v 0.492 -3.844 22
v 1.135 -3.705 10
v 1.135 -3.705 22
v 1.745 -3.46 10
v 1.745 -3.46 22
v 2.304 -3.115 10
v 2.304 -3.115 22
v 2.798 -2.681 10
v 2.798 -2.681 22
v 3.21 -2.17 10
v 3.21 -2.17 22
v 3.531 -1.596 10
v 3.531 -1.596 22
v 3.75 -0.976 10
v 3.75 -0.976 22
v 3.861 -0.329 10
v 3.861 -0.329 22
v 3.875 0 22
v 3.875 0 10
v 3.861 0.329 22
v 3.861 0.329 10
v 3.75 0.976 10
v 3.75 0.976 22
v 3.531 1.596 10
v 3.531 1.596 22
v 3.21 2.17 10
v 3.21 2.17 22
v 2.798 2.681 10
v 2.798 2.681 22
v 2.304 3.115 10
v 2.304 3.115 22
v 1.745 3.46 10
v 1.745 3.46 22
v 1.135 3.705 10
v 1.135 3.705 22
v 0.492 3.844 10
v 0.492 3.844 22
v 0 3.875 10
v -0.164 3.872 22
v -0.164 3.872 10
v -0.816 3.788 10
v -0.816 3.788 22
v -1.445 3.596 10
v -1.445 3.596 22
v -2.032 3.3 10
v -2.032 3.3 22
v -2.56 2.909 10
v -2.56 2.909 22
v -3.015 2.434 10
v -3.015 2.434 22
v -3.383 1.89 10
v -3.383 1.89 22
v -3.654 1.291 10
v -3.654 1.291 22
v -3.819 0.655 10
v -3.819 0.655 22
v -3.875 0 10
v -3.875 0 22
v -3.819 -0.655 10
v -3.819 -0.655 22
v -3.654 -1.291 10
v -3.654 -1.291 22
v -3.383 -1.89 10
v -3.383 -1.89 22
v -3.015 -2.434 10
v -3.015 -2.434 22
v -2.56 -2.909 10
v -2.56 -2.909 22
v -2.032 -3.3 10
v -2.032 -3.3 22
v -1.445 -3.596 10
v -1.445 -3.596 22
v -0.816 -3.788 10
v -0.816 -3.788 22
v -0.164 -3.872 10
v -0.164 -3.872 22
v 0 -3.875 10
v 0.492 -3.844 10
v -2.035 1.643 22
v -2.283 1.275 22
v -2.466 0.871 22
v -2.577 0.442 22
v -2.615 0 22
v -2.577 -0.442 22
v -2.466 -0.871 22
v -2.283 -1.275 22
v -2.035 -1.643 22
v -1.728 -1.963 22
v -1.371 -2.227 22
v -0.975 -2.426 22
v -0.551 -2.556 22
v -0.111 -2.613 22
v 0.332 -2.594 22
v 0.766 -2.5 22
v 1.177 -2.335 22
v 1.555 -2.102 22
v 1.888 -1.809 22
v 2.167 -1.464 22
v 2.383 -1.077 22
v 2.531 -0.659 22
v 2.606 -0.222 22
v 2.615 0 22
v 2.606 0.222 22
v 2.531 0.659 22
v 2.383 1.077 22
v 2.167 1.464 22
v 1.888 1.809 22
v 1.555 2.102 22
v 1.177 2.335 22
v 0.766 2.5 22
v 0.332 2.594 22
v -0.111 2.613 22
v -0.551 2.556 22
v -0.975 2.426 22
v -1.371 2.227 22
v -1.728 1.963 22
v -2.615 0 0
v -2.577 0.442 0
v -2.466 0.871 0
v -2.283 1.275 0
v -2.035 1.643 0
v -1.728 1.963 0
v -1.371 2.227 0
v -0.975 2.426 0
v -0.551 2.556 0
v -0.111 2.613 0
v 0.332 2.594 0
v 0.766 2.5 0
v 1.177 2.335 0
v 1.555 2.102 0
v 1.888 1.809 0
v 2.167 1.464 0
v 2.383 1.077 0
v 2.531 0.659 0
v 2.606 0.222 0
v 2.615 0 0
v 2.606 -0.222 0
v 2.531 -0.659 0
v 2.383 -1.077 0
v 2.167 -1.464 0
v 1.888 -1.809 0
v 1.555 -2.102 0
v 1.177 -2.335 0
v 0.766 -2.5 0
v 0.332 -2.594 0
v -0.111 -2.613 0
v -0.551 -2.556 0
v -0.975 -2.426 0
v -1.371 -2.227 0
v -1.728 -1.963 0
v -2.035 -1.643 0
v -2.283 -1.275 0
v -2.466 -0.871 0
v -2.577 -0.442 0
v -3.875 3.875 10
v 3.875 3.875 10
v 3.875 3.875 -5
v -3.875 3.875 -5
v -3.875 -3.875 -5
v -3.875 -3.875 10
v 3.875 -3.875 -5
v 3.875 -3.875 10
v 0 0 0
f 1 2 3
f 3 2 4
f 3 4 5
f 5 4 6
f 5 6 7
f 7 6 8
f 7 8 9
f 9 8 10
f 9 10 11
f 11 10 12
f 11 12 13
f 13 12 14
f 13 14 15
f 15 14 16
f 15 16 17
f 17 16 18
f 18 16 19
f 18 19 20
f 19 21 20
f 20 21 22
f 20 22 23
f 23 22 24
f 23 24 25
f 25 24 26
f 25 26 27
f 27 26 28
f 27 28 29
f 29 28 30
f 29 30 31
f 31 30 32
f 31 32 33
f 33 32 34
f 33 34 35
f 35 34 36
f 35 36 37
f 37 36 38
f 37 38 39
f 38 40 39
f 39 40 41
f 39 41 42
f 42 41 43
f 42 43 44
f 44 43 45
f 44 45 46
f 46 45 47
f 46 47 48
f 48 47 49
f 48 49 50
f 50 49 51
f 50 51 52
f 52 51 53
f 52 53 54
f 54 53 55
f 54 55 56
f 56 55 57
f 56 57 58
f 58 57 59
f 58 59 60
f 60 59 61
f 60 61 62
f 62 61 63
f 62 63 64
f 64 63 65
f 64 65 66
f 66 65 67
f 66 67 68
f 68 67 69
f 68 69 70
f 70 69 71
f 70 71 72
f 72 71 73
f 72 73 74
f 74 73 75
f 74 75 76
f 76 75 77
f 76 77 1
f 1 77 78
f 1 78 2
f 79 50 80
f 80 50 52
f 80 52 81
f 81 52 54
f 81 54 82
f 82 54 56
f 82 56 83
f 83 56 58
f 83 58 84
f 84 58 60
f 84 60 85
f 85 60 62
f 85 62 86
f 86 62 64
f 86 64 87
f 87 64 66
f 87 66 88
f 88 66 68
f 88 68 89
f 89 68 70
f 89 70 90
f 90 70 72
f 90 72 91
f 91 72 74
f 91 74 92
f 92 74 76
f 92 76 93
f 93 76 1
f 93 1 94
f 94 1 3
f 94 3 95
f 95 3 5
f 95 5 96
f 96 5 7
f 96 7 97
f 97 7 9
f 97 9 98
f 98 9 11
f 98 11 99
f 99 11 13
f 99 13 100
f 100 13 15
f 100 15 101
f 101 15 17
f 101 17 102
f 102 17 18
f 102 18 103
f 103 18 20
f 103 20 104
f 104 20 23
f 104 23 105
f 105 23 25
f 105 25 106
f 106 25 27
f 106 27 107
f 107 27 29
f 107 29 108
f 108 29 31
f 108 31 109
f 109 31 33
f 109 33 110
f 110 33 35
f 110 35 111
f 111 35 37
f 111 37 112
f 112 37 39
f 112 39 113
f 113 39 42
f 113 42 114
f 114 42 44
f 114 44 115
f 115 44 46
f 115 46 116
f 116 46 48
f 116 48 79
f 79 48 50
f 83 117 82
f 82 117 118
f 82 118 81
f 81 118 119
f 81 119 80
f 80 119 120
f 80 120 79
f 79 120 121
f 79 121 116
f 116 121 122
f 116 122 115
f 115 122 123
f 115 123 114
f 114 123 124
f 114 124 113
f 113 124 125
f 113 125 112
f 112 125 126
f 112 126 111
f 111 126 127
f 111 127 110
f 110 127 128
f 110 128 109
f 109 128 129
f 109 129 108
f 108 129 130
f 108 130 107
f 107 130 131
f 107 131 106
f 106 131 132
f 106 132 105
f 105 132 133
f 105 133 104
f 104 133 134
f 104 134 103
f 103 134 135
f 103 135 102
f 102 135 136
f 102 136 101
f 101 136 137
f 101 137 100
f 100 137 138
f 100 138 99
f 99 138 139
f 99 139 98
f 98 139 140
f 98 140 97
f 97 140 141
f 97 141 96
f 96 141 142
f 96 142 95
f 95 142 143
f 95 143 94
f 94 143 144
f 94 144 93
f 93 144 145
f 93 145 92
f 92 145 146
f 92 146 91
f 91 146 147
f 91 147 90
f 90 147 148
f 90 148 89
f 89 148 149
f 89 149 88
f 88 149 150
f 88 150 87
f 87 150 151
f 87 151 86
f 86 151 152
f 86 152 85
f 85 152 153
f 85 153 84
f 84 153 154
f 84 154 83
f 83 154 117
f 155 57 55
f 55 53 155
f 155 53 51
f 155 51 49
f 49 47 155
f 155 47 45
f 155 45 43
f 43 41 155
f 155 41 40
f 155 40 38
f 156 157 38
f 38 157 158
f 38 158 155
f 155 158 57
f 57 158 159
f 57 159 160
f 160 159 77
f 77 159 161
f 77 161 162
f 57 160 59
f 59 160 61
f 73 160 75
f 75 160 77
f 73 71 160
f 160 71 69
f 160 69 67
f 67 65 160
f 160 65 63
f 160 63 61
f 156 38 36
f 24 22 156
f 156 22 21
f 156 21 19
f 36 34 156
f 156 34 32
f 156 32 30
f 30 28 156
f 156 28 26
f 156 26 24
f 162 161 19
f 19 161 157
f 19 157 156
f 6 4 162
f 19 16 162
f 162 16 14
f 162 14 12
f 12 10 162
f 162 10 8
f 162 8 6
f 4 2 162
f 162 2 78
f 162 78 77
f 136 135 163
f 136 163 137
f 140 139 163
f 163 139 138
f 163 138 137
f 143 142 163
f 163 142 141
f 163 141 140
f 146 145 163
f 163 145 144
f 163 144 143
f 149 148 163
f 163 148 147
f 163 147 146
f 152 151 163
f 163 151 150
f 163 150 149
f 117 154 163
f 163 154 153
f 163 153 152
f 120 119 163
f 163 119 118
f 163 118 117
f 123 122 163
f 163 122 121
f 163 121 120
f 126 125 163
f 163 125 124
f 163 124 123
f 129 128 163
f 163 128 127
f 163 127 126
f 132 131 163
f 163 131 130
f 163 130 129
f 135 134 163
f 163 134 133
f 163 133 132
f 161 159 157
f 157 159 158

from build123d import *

# Parameters (mm, degrees)
SKETCH1_R           = 3.875
SKETCH1_R_2         = 2.615
BOSS_EXTRUDE1_DEPTH = 22
BOSS_EXTRUDE2_DEPTH = 10
SKETCH4_W           = 7.75
SKETCH4_H           = 7.75
BOSS_EXTRUDE3_DEPTH = 5


with BuildPart() as part:
    # Sketch1 → Boss-Extrude1 (new body)
    with BuildSketch(Plane.XY):
        Circle(SKETCH1_R)
        Circle(SKETCH1_R_2, mode=Mode.SUBTRACT)
    extrude(amount=BOSS_EXTRUDE1_DEPTH)

    # Sketch2 → Boss-Extrude2 (add)
    with BuildSketch(Plane.XY.offset(10)):
        with BuildLine():
            Line((0, 3.875), (-3.875, 3.875))
            Line((-3.875, 3.875), (-3.875, 0))
            ThreePointArc((-3.875, 0), (-2.740038777, 2.740038777), (0, 3.875))
        make_face()
        with BuildLine():
            ThreePointArc((0, -3.875), (-2.740038777, -2.740038777), (-3.875, 0))
            Line((-3.875, 0), (-3.875, -3.875))
            Line((-3.875, -3.875), (0, -3.875))
        make_face()
        with BuildLine():
            Line((3.875, 3.875), (0, 3.875))
            ThreePointArc((0, 3.875), (2.740038777, 2.740038777), (3.875, 0))
            Line((3.875, 0), (3.875, 3.875))
        make_face()
        with BuildLine():
            Line((3.875, -3.875), (3.875, 0))
            ThreePointArc((3.875, 0), (2.740038777, -2.740038777), (0, -3.875))
            Line((0, -3.875), (3.875, -3.875))
        make_face()
    extrude(amount=-BOSS_EXTRUDE2_DEPTH)

    # Sketch4 → Boss-Extrude3 (add)
    with BuildSketch(Plane(origin=(0, 0, 0), x_dir=(-1, 0, 0), z_dir=(0, 0, -1))):
        Rectangle(SKETCH4_W, SKETCH4_H)
    extrude(amount=BOSS_EXTRUDE3_DEPTH)


solid = part.part
